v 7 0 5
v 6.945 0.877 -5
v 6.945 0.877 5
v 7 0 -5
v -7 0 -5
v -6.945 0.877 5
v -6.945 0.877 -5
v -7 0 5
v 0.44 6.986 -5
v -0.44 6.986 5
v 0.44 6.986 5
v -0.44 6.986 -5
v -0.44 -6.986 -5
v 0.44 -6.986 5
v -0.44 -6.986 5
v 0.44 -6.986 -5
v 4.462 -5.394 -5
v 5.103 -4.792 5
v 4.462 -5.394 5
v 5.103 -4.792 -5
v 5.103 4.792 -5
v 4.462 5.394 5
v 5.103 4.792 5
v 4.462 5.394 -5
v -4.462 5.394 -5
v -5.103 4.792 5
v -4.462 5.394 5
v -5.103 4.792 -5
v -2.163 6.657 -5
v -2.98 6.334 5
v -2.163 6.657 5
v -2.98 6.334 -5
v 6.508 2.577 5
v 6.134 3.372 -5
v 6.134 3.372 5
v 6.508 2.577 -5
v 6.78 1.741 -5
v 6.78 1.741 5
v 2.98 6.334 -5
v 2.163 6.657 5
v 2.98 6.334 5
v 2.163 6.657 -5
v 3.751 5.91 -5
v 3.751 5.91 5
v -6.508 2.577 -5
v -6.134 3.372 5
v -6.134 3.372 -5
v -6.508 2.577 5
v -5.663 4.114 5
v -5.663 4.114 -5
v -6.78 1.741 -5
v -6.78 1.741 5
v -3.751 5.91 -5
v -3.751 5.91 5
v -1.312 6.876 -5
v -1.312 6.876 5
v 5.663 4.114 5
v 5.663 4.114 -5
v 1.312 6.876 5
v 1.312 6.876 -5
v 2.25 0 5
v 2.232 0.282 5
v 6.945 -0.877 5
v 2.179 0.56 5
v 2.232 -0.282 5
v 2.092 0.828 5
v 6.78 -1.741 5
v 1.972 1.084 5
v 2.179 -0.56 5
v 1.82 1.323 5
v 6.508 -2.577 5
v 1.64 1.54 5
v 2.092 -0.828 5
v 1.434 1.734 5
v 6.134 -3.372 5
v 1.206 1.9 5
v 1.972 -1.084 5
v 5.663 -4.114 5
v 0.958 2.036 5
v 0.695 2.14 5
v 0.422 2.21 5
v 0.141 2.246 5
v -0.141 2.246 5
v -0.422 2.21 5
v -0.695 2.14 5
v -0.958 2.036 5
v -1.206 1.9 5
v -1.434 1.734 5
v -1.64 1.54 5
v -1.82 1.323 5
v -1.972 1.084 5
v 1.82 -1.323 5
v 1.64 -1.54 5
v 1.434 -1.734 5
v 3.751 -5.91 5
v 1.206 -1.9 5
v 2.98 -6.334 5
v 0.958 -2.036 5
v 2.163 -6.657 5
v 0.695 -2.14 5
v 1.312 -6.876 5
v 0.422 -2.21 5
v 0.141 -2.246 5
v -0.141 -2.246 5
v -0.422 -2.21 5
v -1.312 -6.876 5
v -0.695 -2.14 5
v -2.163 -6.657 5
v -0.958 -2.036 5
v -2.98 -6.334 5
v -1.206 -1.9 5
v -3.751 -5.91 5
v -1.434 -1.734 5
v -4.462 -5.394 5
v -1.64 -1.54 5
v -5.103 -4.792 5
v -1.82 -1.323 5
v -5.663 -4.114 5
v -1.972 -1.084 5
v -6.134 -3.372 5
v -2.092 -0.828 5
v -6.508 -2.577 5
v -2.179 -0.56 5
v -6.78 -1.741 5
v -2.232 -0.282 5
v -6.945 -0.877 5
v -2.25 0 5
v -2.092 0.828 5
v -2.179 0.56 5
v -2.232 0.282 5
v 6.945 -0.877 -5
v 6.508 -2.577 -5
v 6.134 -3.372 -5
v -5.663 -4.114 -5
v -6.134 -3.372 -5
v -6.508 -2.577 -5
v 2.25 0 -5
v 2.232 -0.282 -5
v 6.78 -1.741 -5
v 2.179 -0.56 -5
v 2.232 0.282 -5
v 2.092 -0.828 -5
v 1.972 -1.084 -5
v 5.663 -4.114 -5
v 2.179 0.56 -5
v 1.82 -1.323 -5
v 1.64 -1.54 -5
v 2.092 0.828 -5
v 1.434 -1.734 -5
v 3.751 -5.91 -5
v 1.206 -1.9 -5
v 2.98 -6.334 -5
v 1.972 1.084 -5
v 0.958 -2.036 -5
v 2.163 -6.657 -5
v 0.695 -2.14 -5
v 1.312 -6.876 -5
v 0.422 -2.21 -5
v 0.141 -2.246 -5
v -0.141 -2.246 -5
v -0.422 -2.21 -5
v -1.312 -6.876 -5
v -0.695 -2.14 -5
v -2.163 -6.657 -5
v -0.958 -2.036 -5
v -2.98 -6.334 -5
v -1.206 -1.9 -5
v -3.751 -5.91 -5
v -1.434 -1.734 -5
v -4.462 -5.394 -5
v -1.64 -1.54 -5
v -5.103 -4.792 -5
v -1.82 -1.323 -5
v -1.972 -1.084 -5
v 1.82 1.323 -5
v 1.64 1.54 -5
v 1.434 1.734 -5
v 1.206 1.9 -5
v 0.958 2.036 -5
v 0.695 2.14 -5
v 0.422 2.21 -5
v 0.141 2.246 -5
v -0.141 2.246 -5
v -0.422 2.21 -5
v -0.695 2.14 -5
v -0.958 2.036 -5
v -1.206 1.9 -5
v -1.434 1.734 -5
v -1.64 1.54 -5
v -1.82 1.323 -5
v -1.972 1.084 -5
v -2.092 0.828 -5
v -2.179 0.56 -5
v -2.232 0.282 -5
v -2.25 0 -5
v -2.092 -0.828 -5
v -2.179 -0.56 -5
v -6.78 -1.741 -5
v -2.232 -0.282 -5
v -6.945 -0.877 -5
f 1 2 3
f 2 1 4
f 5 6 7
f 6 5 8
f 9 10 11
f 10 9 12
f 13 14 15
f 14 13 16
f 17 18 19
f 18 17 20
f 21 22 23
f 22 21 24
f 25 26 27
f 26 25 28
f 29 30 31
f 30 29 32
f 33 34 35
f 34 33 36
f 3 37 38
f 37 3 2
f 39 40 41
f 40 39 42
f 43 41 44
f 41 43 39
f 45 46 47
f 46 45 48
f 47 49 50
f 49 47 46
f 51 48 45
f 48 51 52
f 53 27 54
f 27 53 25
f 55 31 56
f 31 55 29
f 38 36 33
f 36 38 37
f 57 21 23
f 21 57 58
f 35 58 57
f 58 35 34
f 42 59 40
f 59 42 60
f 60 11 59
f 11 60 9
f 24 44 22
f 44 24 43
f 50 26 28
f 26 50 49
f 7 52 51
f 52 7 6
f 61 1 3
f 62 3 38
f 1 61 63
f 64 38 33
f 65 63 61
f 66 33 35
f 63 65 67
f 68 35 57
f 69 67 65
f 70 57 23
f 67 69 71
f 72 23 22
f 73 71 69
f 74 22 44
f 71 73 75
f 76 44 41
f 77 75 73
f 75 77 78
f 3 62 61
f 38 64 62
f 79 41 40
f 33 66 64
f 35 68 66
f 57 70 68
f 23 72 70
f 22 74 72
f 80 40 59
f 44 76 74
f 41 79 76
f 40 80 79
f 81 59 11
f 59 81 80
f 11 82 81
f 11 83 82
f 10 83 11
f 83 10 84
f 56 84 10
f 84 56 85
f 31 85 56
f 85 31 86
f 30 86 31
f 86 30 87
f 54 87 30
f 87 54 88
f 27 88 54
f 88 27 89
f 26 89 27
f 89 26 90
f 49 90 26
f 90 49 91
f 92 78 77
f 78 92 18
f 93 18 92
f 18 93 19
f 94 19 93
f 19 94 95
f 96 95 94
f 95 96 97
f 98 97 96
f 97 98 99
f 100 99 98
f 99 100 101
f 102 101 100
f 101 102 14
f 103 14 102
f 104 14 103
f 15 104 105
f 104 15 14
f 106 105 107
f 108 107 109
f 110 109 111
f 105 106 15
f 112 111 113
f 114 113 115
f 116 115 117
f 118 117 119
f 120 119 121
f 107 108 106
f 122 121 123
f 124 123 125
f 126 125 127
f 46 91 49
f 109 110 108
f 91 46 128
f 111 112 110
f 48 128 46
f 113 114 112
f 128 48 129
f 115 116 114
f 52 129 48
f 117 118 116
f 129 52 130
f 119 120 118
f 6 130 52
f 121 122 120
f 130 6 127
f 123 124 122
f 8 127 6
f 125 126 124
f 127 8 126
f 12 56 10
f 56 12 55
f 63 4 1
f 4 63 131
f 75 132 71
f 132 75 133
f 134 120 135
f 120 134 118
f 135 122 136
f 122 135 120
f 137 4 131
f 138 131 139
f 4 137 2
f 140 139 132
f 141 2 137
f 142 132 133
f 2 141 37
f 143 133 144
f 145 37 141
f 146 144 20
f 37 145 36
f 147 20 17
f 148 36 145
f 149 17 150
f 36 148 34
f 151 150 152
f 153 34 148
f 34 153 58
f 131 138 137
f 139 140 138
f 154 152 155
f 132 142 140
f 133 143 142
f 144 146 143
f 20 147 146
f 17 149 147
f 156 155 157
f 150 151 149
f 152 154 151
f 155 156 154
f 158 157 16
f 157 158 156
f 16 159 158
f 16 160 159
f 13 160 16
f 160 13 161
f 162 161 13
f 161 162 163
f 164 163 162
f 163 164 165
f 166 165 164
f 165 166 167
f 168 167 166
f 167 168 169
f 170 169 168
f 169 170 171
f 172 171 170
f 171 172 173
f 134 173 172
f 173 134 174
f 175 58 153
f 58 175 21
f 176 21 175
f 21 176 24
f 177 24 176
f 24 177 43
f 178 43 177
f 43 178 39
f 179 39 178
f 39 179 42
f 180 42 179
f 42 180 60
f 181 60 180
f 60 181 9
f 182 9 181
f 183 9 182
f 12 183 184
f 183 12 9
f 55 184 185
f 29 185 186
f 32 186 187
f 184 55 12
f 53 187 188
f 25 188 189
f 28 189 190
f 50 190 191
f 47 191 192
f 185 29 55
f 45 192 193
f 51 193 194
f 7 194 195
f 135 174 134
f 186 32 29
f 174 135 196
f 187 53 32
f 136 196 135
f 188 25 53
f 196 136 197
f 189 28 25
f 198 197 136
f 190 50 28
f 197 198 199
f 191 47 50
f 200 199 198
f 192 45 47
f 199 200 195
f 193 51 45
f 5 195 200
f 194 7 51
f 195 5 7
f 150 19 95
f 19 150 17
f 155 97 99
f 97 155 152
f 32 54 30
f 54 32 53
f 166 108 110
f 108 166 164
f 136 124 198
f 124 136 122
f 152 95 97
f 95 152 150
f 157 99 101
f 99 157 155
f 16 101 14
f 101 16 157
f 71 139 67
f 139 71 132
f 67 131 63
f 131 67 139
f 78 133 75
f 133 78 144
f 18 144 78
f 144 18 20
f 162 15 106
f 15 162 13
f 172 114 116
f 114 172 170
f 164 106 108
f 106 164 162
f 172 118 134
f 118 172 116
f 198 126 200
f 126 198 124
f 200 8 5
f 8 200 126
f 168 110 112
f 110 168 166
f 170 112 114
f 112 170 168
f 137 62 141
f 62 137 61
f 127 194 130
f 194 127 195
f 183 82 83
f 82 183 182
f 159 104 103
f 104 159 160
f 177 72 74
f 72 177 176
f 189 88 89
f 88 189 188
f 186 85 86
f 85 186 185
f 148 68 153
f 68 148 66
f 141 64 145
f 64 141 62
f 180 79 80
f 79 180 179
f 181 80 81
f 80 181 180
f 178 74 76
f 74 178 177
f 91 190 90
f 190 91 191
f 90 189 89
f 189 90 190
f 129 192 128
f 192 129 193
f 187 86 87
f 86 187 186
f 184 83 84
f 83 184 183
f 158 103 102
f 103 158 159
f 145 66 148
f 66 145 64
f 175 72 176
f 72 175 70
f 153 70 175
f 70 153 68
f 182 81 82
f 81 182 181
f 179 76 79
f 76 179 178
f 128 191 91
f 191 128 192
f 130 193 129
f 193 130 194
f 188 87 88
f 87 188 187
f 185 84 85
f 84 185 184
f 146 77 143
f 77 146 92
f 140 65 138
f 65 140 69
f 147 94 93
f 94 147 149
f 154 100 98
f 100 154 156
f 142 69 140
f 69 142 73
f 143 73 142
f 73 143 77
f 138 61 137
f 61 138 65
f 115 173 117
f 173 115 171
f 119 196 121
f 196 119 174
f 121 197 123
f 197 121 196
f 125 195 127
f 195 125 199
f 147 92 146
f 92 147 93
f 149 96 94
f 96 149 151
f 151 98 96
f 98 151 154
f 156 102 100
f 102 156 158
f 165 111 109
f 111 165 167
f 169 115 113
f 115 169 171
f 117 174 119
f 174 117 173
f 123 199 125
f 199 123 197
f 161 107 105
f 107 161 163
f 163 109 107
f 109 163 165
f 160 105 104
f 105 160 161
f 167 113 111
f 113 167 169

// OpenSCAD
$fn = 50;


difference() {
	union() {
		translate(v = [0, 0, -5.0000000000]) {
			cylinder(h = 10, r = 7.0000000000);
		}
	}
	union() {
		translate(v = [0, 0, -100.0000000000]) {
			cylinder(h = 200, r = 2.2500000000);
		}
	}
}
